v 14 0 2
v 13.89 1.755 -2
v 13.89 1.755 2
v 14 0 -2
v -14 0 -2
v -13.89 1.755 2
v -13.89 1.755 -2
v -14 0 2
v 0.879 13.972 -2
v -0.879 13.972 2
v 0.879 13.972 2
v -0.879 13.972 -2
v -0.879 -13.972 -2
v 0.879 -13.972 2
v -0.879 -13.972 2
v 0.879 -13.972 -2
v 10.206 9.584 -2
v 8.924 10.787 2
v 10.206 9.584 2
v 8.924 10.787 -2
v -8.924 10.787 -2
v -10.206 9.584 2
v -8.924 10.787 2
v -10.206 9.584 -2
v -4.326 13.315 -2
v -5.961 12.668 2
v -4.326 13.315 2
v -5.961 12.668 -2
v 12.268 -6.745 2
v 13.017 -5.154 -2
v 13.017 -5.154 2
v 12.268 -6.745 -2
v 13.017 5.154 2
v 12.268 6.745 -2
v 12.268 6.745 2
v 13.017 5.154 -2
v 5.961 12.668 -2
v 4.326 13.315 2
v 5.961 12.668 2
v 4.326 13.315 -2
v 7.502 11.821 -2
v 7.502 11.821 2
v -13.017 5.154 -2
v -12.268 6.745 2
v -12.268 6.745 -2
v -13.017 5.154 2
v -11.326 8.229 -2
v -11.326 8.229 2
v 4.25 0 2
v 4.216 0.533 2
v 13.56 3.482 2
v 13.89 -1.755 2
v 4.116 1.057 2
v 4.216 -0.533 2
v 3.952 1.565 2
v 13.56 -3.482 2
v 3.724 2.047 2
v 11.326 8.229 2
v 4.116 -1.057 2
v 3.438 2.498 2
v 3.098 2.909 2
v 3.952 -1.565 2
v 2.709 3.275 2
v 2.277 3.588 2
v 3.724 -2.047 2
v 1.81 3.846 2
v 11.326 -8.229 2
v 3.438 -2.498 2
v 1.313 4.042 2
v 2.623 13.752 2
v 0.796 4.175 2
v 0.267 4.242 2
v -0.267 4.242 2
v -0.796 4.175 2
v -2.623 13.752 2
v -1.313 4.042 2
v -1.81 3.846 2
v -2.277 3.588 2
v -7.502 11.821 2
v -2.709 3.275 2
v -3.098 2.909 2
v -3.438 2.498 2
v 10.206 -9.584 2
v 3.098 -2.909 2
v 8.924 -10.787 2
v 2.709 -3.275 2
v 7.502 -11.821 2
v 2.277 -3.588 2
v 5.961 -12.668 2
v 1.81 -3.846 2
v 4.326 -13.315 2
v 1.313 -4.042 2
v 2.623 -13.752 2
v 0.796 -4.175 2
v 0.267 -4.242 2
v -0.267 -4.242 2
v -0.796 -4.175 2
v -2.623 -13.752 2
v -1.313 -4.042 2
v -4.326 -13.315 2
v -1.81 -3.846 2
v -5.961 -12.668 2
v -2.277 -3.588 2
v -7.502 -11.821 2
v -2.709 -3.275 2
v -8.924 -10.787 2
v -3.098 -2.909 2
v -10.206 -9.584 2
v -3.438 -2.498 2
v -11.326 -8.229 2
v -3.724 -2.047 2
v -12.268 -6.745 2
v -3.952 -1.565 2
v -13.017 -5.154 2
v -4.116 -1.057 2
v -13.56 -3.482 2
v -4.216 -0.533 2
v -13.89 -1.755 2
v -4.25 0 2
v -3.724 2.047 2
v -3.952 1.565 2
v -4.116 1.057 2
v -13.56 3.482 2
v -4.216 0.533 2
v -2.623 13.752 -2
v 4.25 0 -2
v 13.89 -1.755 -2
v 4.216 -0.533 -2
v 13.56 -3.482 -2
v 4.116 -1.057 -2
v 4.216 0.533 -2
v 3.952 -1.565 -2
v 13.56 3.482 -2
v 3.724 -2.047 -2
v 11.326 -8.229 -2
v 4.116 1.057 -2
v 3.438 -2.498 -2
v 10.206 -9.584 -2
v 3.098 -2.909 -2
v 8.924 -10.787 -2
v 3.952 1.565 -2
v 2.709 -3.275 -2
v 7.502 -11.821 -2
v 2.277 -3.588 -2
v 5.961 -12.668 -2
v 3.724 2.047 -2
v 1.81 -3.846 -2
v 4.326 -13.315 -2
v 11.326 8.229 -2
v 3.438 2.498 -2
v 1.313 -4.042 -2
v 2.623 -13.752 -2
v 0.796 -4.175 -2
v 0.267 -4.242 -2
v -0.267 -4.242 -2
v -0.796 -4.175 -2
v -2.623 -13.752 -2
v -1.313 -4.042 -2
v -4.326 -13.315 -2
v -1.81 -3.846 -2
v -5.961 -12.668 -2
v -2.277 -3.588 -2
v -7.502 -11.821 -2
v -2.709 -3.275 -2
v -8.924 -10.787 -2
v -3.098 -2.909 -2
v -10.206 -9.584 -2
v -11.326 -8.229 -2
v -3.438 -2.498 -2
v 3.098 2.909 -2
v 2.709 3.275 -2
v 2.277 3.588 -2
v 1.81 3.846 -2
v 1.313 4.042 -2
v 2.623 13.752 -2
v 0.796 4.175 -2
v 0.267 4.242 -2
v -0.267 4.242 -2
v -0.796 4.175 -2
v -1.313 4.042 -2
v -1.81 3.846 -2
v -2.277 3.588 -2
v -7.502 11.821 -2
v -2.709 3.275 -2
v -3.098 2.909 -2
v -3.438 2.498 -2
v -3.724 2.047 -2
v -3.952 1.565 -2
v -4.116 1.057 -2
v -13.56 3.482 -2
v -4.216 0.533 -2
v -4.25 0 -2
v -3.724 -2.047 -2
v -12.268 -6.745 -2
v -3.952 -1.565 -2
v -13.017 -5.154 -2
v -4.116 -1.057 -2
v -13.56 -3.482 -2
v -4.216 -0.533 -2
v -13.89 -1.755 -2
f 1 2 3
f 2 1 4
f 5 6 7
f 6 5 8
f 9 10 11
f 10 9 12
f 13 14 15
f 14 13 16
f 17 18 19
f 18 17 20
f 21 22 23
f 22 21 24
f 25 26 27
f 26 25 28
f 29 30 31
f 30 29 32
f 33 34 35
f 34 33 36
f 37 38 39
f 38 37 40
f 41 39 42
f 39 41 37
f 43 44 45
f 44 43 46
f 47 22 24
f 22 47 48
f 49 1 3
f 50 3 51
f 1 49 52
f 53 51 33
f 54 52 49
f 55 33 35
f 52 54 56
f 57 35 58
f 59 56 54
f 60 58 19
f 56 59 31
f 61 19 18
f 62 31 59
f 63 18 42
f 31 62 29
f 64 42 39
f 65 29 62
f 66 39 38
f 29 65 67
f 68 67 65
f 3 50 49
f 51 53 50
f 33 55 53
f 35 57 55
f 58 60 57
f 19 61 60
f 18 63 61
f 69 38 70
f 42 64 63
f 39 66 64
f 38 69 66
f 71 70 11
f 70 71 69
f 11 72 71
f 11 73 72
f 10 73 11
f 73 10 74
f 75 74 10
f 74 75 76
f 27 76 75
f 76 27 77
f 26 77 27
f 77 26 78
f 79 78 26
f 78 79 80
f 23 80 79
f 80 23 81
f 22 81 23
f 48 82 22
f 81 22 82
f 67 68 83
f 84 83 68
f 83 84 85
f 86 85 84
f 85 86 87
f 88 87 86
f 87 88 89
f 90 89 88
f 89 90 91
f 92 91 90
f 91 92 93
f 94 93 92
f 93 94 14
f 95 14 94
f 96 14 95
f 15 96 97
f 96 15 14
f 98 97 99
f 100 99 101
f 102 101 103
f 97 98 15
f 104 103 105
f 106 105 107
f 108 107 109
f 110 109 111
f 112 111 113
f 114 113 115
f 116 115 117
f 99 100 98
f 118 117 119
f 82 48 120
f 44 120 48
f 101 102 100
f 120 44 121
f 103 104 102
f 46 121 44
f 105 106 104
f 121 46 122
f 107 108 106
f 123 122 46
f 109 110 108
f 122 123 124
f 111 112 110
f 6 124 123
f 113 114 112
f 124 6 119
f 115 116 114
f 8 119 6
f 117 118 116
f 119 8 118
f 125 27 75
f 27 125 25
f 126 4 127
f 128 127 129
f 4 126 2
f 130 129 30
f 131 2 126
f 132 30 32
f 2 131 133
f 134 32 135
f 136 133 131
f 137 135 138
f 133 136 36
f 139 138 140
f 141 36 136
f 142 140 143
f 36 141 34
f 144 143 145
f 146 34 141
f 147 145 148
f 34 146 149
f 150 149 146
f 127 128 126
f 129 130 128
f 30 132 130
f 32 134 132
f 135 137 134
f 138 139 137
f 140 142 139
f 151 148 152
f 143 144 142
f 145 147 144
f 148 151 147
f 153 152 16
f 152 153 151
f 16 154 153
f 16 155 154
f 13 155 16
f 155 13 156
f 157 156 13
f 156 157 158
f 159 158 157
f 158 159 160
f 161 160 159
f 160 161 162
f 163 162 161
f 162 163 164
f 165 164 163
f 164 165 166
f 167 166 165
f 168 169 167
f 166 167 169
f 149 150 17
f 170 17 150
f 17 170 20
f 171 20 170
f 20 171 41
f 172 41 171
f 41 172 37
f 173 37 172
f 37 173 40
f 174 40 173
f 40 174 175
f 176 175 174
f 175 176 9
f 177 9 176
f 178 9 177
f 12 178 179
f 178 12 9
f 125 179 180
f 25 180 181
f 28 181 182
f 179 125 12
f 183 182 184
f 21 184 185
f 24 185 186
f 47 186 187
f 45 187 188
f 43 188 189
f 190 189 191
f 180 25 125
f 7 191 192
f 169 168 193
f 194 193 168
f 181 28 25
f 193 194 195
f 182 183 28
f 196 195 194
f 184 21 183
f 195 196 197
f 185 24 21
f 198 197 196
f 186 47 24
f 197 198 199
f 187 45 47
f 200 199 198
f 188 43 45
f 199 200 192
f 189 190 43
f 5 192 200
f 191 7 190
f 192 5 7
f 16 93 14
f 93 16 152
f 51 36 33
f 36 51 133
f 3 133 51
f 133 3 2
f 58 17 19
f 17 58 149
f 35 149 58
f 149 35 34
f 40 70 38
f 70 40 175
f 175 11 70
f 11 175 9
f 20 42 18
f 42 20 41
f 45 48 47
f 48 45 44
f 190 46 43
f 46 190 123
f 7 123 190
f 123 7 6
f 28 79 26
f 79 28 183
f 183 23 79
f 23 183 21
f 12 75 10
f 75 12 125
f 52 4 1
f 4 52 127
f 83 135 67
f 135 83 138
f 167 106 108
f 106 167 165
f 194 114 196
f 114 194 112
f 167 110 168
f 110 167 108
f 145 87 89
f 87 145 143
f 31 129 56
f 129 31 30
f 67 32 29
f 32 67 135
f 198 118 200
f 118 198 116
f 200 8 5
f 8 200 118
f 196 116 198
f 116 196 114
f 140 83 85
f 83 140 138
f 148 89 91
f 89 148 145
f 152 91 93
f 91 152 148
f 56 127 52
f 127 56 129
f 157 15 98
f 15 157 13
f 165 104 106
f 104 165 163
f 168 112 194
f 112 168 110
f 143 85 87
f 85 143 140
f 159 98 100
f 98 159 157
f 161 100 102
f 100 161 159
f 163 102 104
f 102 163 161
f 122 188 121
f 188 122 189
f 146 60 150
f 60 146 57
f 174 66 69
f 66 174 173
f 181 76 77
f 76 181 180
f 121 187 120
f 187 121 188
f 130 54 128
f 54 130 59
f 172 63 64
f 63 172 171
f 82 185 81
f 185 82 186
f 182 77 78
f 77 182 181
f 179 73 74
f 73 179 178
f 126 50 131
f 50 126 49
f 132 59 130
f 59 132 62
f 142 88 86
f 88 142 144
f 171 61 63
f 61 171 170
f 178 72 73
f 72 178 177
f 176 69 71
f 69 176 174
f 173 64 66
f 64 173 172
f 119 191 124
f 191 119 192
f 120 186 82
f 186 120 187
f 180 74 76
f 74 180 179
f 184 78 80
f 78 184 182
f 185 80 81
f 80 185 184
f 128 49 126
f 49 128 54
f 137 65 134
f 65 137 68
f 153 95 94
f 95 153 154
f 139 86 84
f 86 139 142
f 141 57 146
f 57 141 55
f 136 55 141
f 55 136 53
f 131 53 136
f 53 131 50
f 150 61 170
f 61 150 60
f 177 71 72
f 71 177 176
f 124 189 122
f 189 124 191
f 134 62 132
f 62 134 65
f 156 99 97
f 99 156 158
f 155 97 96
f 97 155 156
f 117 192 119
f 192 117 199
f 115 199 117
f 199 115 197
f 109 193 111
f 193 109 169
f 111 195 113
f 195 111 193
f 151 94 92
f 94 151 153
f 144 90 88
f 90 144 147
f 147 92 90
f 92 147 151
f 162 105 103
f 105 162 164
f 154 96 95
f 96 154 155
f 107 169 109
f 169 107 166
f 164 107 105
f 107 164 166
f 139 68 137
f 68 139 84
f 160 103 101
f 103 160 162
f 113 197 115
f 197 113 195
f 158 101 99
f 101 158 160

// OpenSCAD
$fn = 50;


difference() {
	union() {
		translate(v = [0, 0, -2.0000000000]) {
			cylinder(h = 4, r = 14.0000000000);
		}
	}
	union() {
		translate(v = [0, 0, -100.0000000000]) {
			cylinder(h = 200, r = 4.2500000000);
		}
	}
}
